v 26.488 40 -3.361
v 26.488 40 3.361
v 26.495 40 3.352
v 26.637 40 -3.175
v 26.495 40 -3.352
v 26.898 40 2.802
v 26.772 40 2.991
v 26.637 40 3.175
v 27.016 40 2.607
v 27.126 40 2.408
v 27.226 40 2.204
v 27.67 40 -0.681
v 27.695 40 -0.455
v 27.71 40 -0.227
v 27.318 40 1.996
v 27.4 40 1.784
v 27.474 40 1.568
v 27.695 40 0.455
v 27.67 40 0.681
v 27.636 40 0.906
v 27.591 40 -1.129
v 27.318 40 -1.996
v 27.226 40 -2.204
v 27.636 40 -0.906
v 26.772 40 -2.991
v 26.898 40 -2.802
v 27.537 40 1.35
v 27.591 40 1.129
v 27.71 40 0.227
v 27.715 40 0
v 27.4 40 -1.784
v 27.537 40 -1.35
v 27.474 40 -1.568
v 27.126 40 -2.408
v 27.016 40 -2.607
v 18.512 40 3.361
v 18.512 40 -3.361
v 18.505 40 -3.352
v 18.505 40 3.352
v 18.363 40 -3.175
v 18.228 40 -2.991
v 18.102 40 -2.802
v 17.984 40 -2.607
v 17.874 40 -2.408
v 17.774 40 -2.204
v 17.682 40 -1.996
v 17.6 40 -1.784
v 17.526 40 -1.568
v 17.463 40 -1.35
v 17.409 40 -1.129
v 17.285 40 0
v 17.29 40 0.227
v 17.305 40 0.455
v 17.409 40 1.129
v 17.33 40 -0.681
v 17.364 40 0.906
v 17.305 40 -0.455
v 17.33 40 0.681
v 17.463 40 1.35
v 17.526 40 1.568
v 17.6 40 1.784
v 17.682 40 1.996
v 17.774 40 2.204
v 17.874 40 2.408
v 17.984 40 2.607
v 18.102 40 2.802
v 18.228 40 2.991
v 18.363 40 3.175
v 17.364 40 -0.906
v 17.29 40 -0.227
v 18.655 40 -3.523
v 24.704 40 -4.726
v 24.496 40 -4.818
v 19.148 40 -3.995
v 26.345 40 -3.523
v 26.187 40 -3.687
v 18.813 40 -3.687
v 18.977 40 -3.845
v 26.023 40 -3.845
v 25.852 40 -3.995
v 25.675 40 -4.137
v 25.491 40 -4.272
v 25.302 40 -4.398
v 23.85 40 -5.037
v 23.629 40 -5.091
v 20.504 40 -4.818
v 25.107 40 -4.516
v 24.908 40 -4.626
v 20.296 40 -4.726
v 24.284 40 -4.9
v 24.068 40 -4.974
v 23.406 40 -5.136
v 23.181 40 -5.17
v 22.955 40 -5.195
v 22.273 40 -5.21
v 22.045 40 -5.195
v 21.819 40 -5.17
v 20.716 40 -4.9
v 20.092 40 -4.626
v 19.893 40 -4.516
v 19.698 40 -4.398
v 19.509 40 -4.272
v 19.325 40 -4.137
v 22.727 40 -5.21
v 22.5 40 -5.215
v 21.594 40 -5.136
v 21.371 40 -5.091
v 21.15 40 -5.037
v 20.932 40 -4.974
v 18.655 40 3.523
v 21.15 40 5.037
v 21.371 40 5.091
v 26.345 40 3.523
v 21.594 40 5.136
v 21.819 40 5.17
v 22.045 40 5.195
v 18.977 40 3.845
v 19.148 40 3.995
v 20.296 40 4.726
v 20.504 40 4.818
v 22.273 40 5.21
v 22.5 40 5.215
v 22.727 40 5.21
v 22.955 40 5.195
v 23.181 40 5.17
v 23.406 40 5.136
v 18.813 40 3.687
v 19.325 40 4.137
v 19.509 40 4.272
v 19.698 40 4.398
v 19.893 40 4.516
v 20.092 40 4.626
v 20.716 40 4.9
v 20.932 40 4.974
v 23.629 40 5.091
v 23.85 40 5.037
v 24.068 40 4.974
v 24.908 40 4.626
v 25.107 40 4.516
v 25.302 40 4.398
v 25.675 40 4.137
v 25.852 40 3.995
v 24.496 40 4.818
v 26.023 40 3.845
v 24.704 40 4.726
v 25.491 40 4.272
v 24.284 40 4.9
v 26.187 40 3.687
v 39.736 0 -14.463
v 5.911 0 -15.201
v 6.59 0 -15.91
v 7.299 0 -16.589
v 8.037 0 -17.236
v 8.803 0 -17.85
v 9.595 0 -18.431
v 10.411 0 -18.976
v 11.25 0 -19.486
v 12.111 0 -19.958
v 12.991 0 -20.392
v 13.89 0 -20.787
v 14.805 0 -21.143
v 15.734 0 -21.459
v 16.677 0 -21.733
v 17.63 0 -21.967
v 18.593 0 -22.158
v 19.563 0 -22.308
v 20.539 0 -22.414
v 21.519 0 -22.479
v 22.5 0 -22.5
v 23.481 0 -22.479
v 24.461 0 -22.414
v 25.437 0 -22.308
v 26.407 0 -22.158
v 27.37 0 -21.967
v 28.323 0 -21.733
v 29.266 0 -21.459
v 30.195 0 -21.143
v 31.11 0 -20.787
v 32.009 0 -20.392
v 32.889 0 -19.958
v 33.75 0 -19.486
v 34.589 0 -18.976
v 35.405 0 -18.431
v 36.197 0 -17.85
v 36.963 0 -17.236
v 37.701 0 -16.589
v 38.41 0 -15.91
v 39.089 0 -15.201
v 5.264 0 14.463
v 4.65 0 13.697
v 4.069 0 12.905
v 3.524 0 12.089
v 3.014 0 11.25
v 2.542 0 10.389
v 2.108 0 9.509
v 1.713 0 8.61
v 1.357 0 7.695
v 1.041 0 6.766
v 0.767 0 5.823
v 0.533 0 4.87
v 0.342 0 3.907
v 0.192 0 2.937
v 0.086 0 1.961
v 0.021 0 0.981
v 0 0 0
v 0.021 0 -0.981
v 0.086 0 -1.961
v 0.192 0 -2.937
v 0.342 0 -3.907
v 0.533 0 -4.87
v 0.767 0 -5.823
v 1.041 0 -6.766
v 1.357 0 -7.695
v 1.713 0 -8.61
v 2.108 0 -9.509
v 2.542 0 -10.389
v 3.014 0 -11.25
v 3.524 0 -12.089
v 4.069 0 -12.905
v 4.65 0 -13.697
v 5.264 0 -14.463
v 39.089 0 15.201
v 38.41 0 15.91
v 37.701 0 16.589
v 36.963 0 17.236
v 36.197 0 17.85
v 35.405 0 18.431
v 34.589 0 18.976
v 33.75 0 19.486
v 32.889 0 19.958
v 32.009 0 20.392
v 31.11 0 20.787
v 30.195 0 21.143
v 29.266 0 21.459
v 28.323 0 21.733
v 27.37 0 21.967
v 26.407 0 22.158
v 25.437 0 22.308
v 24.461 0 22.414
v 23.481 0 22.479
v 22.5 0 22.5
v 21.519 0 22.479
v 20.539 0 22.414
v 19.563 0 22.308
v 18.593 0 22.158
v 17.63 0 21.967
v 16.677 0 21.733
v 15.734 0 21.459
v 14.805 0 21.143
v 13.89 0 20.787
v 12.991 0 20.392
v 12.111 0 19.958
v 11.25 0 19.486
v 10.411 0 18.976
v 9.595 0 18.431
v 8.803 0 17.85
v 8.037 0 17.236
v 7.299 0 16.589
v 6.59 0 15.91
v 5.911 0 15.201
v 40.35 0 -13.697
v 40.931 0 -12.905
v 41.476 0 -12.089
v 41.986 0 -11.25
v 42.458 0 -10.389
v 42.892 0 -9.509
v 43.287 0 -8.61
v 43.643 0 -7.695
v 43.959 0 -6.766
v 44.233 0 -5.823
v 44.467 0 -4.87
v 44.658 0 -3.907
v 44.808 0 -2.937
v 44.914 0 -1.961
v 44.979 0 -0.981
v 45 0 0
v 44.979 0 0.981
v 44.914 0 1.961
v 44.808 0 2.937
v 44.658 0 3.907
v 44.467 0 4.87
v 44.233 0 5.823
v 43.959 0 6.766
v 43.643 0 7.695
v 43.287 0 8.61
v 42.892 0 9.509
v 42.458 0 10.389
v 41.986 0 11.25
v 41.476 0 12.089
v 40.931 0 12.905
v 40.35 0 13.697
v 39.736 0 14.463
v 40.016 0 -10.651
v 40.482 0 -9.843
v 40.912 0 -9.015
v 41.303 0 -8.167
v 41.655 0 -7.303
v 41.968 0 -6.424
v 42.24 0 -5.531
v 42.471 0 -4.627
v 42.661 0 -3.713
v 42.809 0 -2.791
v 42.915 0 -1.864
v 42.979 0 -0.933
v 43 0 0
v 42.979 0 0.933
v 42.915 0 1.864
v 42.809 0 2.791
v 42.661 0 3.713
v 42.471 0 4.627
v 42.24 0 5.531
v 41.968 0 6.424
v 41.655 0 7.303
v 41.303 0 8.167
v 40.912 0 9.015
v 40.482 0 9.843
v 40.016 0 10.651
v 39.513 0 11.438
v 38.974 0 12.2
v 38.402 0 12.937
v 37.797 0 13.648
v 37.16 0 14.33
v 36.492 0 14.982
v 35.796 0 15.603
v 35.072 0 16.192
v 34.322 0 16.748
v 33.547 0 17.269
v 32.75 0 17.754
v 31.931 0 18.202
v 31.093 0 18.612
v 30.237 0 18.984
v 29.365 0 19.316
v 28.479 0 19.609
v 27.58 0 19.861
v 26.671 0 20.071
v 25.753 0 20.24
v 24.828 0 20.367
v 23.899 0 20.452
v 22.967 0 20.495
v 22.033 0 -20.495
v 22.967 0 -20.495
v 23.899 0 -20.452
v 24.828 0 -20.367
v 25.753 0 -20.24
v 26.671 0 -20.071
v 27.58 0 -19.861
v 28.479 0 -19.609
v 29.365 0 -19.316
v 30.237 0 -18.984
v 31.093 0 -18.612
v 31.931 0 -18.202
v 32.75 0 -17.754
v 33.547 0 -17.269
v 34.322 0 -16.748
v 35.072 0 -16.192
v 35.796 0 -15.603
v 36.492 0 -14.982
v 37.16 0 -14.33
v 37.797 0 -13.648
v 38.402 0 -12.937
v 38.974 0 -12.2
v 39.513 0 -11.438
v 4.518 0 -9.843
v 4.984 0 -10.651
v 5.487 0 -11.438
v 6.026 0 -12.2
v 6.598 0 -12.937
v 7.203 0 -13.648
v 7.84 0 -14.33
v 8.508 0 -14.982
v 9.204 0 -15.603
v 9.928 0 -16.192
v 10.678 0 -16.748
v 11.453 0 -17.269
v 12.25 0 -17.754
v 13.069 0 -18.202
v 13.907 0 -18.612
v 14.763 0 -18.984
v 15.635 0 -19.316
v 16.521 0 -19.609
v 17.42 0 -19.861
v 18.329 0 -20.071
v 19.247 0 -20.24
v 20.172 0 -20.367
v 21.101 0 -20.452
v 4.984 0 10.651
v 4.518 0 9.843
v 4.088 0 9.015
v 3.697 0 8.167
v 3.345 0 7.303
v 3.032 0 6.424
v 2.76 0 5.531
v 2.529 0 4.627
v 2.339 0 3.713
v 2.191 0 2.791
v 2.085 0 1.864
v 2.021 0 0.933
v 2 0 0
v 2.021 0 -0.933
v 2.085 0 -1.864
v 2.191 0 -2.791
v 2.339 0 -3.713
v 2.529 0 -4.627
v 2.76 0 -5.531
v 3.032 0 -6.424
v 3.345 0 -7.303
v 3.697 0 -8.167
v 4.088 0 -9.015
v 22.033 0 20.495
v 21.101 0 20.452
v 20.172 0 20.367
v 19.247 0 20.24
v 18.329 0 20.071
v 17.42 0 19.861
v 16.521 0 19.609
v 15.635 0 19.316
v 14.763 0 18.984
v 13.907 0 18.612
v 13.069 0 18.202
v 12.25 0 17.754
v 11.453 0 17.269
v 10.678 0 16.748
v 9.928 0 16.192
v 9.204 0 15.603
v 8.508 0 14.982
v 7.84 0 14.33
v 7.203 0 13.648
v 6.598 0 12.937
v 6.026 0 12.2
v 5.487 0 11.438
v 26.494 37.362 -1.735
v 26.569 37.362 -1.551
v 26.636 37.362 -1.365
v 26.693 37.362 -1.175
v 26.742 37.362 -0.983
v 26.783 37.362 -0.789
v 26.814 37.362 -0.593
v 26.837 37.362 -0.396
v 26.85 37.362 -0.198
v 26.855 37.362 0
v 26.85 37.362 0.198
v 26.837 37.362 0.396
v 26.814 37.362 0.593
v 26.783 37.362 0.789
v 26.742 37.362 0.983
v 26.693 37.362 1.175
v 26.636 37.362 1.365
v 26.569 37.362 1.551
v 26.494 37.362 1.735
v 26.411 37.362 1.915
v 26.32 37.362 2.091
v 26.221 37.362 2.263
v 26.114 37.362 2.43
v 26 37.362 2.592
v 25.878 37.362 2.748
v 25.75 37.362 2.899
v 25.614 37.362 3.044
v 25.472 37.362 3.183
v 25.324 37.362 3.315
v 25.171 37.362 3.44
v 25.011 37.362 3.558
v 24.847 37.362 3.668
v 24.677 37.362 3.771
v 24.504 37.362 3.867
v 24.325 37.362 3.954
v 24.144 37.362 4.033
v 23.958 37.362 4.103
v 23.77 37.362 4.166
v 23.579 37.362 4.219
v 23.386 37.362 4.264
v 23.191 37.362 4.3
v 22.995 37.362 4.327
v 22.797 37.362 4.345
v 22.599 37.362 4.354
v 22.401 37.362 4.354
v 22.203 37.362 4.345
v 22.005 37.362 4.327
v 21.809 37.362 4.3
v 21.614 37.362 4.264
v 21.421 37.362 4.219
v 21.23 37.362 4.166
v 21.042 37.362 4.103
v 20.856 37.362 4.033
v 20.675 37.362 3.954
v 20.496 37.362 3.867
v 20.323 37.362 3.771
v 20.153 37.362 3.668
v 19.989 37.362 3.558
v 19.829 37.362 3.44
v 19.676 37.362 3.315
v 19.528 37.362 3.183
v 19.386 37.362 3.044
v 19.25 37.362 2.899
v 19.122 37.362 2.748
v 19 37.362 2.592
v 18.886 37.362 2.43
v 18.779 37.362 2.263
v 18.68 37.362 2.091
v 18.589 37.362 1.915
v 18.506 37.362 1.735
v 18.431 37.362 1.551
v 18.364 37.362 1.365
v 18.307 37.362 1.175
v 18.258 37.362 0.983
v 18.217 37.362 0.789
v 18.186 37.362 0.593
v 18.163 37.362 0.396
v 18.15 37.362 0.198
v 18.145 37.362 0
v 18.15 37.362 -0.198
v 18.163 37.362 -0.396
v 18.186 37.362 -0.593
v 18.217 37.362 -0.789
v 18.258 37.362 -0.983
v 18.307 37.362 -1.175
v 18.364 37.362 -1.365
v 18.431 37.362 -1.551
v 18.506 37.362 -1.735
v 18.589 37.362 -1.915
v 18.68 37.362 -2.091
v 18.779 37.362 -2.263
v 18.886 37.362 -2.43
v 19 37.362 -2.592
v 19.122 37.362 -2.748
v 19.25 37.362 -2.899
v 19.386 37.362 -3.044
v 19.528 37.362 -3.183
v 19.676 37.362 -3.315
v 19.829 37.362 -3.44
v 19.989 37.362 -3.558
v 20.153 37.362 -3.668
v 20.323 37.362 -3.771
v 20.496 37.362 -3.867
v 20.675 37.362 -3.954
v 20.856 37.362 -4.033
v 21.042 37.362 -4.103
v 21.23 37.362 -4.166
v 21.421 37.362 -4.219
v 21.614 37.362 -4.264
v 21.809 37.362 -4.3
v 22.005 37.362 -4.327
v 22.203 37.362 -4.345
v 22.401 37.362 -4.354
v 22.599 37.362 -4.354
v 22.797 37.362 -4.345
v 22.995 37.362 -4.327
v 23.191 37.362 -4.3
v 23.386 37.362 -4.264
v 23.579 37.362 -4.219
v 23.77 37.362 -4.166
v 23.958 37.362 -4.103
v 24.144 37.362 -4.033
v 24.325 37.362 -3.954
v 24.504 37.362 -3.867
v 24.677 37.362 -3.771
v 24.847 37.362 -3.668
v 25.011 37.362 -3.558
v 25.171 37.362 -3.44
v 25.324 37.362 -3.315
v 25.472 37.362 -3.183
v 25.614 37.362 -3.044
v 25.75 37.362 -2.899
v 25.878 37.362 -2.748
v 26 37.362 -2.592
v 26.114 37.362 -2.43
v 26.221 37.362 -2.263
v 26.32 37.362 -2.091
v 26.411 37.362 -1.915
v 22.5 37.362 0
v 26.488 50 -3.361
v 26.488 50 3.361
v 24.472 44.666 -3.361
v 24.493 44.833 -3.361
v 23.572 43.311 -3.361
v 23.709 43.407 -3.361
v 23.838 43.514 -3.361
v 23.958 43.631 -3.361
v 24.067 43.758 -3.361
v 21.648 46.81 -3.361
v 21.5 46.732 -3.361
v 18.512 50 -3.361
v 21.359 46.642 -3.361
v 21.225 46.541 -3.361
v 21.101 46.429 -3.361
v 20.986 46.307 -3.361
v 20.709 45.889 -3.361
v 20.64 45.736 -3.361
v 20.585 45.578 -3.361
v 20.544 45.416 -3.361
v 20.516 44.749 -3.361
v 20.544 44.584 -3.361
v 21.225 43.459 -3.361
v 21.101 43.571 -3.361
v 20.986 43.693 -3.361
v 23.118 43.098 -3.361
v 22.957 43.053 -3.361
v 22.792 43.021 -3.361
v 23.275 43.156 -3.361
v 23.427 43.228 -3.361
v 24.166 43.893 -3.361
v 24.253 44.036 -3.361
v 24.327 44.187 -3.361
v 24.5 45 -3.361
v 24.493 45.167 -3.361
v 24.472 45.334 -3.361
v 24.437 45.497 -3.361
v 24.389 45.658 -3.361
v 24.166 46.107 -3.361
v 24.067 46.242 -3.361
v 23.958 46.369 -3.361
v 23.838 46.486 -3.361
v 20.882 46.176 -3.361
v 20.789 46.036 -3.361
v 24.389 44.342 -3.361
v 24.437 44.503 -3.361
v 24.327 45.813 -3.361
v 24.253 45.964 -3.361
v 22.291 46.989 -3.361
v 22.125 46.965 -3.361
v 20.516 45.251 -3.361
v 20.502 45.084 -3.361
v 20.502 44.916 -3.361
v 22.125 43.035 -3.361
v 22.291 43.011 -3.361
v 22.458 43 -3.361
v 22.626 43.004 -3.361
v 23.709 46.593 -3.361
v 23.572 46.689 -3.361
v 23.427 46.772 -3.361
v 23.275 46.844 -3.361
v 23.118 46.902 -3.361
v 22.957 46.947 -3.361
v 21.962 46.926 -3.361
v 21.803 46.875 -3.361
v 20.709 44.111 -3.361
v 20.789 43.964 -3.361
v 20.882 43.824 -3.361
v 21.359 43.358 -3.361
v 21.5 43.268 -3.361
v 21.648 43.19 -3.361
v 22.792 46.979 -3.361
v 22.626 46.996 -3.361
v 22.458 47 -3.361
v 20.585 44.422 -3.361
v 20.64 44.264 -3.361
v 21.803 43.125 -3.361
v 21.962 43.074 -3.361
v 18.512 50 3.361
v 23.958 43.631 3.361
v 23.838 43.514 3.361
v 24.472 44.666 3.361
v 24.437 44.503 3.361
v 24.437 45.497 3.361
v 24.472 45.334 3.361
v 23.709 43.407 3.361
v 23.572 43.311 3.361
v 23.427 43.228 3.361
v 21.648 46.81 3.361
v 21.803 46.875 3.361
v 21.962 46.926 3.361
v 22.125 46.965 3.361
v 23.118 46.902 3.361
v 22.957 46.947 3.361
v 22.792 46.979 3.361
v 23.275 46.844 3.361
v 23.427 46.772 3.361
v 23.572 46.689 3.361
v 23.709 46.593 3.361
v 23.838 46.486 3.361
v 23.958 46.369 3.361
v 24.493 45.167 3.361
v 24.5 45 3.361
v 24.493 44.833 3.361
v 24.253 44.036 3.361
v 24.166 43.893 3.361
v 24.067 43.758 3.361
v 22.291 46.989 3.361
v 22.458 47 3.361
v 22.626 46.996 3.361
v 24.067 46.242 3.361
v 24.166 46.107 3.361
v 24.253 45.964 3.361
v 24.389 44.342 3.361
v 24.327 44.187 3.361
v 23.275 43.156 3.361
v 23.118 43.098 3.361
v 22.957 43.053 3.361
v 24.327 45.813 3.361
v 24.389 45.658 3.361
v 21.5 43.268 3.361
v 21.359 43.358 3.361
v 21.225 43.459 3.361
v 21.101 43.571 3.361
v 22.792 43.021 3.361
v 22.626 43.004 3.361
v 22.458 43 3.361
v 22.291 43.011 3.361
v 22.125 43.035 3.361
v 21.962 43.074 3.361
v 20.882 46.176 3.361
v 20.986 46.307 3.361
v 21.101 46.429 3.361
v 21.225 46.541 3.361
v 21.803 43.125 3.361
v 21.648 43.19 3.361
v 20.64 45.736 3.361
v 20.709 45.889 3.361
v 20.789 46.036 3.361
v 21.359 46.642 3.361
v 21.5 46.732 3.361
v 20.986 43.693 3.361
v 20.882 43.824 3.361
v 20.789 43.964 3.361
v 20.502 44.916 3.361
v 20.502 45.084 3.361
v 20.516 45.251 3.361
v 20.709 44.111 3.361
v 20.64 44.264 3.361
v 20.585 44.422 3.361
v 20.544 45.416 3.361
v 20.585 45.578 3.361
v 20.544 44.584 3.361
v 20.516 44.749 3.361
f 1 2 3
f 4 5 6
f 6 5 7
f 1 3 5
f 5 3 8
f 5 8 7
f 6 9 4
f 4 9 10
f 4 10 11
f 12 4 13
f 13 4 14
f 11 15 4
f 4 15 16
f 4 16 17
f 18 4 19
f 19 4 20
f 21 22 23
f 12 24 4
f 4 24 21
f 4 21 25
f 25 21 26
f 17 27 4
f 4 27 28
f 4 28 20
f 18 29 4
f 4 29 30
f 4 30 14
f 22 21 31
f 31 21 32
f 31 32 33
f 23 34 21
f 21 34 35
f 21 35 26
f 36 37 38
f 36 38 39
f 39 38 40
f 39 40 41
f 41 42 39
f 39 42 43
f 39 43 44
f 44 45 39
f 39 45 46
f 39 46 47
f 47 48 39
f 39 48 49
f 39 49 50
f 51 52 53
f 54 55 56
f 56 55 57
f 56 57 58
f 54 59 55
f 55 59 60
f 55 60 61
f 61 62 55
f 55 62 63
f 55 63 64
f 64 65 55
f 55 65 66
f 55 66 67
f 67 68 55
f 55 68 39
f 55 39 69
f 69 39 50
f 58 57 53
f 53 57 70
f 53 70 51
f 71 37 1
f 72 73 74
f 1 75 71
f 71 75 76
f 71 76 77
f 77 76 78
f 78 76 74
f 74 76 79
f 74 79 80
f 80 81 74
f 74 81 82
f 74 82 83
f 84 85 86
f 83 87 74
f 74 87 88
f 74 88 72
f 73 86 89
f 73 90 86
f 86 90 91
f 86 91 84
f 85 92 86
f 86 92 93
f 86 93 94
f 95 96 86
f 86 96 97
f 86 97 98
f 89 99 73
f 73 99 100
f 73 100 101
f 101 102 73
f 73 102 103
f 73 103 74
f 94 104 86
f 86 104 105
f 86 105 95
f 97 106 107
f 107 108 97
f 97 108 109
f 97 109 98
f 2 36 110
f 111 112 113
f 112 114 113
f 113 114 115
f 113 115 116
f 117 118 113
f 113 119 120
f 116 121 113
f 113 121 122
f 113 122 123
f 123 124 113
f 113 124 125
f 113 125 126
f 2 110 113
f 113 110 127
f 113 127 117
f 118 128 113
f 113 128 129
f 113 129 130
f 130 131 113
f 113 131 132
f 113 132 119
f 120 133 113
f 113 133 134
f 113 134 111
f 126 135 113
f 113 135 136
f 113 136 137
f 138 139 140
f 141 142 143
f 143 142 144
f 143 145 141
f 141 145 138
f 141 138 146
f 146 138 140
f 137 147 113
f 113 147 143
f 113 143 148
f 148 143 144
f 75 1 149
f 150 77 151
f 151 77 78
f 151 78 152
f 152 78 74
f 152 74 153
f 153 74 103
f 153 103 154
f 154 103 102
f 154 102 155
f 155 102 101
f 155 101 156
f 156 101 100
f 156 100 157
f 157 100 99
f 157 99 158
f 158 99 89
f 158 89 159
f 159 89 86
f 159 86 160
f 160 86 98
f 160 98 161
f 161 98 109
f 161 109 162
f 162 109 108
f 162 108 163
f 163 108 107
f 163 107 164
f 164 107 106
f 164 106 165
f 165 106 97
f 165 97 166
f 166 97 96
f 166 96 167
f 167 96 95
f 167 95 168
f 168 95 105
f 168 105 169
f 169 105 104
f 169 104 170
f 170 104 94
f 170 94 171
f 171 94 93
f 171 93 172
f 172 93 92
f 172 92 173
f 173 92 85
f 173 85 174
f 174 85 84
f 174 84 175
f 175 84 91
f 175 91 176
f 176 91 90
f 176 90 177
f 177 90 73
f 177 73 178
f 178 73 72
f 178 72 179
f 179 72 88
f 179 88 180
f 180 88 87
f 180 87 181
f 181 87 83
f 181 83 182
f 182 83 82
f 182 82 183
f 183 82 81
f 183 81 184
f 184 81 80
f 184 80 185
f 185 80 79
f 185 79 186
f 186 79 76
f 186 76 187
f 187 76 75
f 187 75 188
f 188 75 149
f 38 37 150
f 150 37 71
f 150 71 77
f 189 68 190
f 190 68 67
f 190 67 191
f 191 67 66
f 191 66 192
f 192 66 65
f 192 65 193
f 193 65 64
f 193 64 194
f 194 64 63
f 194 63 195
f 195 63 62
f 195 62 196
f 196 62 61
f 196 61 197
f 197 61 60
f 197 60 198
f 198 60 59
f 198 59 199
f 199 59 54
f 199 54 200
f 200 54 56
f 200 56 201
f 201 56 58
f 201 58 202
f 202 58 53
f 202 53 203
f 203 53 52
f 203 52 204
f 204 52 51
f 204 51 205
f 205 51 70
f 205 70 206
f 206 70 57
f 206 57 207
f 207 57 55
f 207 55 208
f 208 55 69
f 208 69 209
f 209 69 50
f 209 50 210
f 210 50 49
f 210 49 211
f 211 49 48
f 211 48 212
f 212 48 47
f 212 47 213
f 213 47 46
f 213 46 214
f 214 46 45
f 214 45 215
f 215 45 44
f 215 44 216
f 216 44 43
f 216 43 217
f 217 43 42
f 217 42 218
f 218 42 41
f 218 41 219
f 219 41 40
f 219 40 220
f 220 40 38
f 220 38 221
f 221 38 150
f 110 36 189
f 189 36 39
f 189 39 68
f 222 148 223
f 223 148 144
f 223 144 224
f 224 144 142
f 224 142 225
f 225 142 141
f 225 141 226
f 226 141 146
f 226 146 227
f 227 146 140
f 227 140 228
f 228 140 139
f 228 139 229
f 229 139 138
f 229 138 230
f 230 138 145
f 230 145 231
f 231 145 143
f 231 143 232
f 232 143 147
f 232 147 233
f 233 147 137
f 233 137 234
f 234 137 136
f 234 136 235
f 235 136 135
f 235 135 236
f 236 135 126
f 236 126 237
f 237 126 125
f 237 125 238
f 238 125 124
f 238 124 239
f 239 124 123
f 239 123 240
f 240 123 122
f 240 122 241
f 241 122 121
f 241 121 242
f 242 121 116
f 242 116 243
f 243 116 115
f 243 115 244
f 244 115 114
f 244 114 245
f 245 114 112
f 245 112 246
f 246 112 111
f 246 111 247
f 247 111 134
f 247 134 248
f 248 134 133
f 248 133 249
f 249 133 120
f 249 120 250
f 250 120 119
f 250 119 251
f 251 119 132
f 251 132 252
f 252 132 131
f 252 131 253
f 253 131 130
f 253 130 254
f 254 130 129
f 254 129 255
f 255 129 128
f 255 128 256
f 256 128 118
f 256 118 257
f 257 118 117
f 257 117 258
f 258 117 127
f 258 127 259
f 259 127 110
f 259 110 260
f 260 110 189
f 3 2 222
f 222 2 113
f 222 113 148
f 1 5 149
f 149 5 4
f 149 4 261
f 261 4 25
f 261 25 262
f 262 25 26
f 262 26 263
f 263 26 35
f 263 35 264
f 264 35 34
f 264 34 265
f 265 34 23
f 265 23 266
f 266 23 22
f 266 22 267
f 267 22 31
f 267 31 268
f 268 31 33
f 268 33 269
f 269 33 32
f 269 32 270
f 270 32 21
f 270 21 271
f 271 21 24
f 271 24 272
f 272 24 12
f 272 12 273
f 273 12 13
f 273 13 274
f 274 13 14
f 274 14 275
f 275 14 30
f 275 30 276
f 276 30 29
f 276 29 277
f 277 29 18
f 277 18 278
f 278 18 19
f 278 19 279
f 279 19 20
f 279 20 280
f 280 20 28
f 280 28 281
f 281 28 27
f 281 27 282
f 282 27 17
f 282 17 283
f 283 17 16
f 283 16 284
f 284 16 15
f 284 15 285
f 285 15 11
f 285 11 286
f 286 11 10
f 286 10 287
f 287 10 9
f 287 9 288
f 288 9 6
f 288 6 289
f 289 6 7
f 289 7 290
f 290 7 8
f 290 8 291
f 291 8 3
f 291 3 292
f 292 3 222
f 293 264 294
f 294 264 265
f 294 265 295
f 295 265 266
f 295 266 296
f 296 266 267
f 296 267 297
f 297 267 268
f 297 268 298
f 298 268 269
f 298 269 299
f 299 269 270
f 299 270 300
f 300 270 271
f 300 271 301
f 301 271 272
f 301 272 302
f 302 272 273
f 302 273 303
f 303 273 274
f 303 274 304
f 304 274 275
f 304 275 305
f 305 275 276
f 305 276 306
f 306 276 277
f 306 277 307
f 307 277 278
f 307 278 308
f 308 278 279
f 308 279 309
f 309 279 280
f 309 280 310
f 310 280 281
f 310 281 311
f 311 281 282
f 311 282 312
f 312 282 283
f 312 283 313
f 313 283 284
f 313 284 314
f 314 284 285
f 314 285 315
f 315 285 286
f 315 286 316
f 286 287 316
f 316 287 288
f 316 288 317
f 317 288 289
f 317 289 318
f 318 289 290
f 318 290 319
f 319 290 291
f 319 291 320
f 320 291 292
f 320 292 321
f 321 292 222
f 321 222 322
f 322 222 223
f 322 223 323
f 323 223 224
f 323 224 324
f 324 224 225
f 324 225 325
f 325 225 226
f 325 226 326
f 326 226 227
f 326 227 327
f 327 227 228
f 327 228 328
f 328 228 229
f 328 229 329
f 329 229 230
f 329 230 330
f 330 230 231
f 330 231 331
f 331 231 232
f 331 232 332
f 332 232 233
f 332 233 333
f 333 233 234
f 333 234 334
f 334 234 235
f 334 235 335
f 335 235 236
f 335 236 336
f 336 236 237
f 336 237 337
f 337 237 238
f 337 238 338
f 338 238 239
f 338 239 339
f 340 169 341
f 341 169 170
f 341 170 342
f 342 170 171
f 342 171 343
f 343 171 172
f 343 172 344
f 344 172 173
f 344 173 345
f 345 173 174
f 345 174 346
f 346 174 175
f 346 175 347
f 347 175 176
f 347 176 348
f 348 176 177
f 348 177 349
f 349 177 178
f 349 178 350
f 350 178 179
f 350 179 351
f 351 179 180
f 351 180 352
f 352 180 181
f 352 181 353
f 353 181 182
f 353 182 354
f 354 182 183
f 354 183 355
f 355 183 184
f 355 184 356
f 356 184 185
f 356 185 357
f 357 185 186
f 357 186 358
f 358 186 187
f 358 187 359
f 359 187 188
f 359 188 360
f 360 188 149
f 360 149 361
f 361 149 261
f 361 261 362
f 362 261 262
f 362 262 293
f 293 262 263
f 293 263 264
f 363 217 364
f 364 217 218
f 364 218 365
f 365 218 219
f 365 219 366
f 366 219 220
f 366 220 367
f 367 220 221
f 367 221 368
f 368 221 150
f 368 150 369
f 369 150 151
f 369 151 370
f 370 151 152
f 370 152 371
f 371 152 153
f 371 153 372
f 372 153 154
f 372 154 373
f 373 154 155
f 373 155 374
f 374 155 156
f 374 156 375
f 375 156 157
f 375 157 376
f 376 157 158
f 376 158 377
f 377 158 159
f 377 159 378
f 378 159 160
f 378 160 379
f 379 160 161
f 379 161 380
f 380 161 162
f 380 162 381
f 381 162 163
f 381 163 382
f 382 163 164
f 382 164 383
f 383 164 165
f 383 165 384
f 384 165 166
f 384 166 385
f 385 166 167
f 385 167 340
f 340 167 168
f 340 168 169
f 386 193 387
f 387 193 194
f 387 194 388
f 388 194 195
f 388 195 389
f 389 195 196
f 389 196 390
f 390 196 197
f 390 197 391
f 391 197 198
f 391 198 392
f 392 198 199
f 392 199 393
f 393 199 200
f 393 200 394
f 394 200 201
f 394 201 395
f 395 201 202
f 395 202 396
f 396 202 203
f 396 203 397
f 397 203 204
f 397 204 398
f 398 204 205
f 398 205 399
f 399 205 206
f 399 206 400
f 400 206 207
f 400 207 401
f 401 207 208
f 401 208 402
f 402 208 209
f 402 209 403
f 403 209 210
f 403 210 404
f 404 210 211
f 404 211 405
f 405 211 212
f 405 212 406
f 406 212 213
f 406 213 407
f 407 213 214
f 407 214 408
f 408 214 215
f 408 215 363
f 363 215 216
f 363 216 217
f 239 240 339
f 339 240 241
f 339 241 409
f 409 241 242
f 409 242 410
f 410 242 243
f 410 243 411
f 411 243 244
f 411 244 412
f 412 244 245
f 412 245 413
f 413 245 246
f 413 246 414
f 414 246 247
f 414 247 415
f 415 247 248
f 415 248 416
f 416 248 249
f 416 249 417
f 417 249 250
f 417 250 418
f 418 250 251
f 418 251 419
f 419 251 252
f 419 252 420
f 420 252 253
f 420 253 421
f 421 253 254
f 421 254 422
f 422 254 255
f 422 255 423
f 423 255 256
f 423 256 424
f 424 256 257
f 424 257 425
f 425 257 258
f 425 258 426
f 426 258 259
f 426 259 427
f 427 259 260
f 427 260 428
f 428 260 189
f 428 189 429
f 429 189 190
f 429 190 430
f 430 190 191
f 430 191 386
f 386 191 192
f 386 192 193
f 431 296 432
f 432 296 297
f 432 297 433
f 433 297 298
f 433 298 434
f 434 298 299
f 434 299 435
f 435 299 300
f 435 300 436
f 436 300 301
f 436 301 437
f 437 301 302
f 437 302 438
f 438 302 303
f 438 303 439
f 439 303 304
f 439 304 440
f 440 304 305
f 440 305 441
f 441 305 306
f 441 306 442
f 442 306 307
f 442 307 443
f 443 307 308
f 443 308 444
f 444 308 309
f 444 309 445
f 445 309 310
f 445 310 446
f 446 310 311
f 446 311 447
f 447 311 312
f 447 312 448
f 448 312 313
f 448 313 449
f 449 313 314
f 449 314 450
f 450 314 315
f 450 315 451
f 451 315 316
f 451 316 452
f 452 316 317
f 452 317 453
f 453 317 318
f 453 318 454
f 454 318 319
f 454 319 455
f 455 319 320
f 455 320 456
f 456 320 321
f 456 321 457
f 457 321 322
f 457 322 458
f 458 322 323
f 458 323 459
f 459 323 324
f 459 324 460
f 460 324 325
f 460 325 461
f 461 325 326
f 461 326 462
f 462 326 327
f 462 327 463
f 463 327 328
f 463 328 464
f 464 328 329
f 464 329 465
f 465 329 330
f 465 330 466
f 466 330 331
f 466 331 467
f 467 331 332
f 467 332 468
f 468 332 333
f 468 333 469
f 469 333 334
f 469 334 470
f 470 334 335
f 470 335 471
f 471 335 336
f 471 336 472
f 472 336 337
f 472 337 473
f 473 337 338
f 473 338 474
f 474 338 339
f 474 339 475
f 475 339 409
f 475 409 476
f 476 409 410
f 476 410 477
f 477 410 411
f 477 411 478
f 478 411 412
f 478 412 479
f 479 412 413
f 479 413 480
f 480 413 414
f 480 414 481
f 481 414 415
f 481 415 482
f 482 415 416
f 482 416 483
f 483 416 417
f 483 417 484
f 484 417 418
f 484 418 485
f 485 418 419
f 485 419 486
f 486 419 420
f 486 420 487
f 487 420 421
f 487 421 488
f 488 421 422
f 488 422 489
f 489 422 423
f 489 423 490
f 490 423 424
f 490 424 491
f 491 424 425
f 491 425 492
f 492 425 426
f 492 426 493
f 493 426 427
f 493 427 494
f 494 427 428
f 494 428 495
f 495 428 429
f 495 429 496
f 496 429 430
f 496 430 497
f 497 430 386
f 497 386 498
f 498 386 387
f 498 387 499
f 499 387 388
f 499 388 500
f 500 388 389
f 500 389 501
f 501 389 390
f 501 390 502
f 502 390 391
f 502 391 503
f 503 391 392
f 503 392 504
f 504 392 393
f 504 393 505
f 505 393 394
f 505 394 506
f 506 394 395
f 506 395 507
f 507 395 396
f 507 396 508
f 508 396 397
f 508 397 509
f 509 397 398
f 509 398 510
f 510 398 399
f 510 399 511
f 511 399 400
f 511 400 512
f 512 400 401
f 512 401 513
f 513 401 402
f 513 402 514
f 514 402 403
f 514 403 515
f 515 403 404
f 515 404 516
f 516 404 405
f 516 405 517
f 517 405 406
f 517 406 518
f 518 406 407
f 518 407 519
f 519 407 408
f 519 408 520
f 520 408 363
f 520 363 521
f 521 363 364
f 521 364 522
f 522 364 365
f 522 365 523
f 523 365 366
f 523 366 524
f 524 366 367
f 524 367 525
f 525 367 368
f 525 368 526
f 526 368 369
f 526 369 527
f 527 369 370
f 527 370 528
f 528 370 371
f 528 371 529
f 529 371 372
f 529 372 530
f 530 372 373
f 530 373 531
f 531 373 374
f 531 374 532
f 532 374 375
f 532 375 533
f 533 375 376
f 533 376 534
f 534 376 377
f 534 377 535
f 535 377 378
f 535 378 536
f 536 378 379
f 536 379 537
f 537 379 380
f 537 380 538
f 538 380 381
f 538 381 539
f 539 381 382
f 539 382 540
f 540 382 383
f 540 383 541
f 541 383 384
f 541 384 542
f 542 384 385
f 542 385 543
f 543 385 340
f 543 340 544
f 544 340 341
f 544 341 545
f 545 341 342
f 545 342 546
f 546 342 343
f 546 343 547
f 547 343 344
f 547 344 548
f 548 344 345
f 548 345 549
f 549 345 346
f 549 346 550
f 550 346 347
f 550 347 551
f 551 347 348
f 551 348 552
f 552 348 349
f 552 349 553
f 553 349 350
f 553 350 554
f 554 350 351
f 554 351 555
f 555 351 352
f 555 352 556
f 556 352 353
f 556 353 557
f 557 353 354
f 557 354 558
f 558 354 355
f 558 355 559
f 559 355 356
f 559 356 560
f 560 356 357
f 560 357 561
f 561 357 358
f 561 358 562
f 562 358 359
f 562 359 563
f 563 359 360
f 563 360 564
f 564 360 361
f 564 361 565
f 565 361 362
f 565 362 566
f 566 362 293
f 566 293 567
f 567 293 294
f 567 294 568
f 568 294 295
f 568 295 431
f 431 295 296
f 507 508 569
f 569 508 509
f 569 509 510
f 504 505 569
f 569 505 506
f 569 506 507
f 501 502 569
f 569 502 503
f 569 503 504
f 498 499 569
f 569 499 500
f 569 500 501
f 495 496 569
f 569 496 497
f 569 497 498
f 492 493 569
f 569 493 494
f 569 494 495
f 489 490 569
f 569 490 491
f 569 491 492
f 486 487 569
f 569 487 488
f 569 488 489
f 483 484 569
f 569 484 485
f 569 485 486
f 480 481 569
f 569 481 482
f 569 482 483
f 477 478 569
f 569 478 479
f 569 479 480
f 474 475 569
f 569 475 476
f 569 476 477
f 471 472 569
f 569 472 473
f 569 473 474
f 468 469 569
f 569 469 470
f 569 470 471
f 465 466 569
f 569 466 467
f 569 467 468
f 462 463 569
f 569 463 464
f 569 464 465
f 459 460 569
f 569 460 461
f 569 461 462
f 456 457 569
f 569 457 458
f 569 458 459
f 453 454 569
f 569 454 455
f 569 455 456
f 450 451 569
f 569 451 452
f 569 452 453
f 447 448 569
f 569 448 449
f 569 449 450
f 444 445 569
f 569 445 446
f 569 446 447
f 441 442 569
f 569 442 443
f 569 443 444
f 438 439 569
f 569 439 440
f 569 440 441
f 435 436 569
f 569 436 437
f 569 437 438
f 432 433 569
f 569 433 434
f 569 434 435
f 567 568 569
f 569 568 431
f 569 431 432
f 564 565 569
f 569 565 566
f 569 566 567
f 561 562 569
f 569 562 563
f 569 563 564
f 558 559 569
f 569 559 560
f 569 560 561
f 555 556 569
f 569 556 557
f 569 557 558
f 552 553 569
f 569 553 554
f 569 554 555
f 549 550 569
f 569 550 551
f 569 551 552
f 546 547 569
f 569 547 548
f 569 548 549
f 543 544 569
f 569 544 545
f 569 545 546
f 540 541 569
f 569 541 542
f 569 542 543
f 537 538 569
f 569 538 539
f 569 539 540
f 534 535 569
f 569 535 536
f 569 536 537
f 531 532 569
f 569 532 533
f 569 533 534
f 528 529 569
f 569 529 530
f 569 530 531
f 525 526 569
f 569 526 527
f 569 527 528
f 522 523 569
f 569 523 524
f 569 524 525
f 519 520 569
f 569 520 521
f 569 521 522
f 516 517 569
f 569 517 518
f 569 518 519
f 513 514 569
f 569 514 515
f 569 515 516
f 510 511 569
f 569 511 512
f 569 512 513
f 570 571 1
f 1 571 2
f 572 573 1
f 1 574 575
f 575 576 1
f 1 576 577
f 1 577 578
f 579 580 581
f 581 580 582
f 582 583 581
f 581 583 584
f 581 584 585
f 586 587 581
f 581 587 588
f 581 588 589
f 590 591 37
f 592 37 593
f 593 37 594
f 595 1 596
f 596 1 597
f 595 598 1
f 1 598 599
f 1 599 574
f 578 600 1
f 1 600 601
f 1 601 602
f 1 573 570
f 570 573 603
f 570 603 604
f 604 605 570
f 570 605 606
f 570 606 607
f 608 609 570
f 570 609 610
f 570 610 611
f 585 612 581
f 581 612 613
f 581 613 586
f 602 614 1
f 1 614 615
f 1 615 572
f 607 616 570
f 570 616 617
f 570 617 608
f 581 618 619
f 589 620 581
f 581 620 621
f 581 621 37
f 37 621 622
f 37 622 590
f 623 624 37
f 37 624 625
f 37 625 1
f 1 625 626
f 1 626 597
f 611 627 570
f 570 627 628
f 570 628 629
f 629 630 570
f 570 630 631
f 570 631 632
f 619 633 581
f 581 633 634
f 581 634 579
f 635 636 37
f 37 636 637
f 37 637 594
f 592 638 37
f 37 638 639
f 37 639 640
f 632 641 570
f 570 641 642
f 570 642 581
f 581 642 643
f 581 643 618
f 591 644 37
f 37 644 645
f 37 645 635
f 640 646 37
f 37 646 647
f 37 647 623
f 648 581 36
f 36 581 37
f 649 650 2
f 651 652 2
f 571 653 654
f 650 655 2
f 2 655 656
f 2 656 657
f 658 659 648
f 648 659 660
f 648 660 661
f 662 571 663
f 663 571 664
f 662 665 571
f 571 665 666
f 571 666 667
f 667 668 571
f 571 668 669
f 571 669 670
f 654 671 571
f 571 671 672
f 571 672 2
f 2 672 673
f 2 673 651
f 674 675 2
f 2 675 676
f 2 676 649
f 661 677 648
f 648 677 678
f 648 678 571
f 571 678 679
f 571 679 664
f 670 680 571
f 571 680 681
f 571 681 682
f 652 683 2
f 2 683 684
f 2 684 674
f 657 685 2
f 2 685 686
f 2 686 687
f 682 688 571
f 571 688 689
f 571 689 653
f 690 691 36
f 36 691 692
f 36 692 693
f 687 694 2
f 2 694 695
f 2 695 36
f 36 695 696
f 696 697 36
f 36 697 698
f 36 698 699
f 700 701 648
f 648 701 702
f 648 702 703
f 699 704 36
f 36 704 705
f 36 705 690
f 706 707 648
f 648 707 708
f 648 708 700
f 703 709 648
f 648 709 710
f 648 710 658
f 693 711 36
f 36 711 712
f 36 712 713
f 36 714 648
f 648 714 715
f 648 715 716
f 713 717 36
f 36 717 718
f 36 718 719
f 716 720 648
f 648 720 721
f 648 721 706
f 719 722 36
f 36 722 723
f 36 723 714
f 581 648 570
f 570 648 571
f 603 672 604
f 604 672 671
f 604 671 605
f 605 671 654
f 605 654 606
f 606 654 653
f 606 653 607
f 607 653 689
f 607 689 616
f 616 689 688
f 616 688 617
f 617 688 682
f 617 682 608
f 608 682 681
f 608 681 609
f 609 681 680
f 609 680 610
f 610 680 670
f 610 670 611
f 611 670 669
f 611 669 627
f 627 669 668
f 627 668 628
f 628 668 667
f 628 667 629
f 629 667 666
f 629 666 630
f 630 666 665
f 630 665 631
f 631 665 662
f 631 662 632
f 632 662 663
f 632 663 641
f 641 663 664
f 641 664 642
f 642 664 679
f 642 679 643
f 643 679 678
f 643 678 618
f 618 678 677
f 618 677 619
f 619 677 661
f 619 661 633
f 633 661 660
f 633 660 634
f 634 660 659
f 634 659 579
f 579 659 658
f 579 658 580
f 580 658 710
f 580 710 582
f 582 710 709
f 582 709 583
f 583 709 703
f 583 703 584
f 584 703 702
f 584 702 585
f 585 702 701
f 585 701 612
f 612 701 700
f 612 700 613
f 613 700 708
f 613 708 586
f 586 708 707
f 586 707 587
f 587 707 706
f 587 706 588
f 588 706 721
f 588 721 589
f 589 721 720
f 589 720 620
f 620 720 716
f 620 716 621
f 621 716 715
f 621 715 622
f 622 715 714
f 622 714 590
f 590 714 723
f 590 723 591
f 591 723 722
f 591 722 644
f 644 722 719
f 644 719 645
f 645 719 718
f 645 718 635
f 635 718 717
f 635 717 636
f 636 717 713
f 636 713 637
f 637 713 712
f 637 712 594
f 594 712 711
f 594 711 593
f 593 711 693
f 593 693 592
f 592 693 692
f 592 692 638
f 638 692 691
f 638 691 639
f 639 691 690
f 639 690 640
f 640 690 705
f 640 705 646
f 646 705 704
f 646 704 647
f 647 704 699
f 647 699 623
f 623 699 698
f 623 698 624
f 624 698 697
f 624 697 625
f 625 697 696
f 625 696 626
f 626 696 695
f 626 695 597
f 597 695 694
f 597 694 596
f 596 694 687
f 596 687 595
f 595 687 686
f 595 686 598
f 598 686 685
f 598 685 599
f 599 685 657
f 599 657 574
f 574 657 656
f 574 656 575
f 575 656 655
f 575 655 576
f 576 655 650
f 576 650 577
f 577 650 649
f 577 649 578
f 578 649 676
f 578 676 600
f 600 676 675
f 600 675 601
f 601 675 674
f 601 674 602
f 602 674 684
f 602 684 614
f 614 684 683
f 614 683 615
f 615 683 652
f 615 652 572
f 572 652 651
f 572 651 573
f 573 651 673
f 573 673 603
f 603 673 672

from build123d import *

# Parameters (mm, degrees)
ESQUISSE2_W                  = 7.975229024
ESQUISSE2_H                  = 6.721241558
BOSS_EXTRU_1_DEPTH           = 10
ENL_V_MAT_EXTRU_1_DEPTH      = 14
ENL_V_MAT_EXTRU_1_DEPTH_BACK = 13


with BuildPart() as part:
    # Esquisse1 → Révolution1 (revolve)
    with BuildSketch(Plane.XY):
        Polygon((17.285132647, 40), (19.285132647, 40), (2, 0), (0, 0), align=None)
        Polygon((19.285132647, 40), (18.145144725, 37.361922653), (22.5, 37.361922653), (22.5, 40), align=None)
    revolve(axis=Axis((22.5, 40, 0), (0, -1, 0)))

    # Esquisse2 → Boss.-Extru.1 (add)
    with BuildSketch(Plane(origin=(0, 40, 0), x_dir=(1, 0, 0), z_dir=(0, 1, 0))):
        with Locations((22.5, 0)):
            Rectangle(ESQUISSE2_W, ESQUISSE2_H)
    extrude(amount=BOSS_EXTRU_1_DEPTH)

    # Esquisse3 → Enlèv. mat.-Extru.1 (cut, two sides)
    with BuildSketch(Plane(origin=(0, 0, -3.360620779), x_dir=(-1, 0, 0), z_dir=(0, 0, -1))) as enl_v_mat_extru_1_sk:
        with BuildLine():
            ThreePointArc((-20.5, 45), (-22.5, 47), (-24.5, 45))
            Line((-24.5, 45), (-20.5, 45))
        make_face()
        with BuildLine():
            Line((-20.5, 45), (-24.5, 45))
            ThreePointArc((-24.5, 45), (-22.5, 43), (-20.5, 45))
        make_face()
    extrude(amount=ENL_V_MAT_EXTRU_1_DEPTH, mode=Mode.SUBTRACT)
    extrude(enl_v_mat_extru_1_sk.sketch, amount=-ENL_V_MAT_EXTRU_1_DEPTH_BACK, mode=Mode.SUBTRACT)


solid = part.part
